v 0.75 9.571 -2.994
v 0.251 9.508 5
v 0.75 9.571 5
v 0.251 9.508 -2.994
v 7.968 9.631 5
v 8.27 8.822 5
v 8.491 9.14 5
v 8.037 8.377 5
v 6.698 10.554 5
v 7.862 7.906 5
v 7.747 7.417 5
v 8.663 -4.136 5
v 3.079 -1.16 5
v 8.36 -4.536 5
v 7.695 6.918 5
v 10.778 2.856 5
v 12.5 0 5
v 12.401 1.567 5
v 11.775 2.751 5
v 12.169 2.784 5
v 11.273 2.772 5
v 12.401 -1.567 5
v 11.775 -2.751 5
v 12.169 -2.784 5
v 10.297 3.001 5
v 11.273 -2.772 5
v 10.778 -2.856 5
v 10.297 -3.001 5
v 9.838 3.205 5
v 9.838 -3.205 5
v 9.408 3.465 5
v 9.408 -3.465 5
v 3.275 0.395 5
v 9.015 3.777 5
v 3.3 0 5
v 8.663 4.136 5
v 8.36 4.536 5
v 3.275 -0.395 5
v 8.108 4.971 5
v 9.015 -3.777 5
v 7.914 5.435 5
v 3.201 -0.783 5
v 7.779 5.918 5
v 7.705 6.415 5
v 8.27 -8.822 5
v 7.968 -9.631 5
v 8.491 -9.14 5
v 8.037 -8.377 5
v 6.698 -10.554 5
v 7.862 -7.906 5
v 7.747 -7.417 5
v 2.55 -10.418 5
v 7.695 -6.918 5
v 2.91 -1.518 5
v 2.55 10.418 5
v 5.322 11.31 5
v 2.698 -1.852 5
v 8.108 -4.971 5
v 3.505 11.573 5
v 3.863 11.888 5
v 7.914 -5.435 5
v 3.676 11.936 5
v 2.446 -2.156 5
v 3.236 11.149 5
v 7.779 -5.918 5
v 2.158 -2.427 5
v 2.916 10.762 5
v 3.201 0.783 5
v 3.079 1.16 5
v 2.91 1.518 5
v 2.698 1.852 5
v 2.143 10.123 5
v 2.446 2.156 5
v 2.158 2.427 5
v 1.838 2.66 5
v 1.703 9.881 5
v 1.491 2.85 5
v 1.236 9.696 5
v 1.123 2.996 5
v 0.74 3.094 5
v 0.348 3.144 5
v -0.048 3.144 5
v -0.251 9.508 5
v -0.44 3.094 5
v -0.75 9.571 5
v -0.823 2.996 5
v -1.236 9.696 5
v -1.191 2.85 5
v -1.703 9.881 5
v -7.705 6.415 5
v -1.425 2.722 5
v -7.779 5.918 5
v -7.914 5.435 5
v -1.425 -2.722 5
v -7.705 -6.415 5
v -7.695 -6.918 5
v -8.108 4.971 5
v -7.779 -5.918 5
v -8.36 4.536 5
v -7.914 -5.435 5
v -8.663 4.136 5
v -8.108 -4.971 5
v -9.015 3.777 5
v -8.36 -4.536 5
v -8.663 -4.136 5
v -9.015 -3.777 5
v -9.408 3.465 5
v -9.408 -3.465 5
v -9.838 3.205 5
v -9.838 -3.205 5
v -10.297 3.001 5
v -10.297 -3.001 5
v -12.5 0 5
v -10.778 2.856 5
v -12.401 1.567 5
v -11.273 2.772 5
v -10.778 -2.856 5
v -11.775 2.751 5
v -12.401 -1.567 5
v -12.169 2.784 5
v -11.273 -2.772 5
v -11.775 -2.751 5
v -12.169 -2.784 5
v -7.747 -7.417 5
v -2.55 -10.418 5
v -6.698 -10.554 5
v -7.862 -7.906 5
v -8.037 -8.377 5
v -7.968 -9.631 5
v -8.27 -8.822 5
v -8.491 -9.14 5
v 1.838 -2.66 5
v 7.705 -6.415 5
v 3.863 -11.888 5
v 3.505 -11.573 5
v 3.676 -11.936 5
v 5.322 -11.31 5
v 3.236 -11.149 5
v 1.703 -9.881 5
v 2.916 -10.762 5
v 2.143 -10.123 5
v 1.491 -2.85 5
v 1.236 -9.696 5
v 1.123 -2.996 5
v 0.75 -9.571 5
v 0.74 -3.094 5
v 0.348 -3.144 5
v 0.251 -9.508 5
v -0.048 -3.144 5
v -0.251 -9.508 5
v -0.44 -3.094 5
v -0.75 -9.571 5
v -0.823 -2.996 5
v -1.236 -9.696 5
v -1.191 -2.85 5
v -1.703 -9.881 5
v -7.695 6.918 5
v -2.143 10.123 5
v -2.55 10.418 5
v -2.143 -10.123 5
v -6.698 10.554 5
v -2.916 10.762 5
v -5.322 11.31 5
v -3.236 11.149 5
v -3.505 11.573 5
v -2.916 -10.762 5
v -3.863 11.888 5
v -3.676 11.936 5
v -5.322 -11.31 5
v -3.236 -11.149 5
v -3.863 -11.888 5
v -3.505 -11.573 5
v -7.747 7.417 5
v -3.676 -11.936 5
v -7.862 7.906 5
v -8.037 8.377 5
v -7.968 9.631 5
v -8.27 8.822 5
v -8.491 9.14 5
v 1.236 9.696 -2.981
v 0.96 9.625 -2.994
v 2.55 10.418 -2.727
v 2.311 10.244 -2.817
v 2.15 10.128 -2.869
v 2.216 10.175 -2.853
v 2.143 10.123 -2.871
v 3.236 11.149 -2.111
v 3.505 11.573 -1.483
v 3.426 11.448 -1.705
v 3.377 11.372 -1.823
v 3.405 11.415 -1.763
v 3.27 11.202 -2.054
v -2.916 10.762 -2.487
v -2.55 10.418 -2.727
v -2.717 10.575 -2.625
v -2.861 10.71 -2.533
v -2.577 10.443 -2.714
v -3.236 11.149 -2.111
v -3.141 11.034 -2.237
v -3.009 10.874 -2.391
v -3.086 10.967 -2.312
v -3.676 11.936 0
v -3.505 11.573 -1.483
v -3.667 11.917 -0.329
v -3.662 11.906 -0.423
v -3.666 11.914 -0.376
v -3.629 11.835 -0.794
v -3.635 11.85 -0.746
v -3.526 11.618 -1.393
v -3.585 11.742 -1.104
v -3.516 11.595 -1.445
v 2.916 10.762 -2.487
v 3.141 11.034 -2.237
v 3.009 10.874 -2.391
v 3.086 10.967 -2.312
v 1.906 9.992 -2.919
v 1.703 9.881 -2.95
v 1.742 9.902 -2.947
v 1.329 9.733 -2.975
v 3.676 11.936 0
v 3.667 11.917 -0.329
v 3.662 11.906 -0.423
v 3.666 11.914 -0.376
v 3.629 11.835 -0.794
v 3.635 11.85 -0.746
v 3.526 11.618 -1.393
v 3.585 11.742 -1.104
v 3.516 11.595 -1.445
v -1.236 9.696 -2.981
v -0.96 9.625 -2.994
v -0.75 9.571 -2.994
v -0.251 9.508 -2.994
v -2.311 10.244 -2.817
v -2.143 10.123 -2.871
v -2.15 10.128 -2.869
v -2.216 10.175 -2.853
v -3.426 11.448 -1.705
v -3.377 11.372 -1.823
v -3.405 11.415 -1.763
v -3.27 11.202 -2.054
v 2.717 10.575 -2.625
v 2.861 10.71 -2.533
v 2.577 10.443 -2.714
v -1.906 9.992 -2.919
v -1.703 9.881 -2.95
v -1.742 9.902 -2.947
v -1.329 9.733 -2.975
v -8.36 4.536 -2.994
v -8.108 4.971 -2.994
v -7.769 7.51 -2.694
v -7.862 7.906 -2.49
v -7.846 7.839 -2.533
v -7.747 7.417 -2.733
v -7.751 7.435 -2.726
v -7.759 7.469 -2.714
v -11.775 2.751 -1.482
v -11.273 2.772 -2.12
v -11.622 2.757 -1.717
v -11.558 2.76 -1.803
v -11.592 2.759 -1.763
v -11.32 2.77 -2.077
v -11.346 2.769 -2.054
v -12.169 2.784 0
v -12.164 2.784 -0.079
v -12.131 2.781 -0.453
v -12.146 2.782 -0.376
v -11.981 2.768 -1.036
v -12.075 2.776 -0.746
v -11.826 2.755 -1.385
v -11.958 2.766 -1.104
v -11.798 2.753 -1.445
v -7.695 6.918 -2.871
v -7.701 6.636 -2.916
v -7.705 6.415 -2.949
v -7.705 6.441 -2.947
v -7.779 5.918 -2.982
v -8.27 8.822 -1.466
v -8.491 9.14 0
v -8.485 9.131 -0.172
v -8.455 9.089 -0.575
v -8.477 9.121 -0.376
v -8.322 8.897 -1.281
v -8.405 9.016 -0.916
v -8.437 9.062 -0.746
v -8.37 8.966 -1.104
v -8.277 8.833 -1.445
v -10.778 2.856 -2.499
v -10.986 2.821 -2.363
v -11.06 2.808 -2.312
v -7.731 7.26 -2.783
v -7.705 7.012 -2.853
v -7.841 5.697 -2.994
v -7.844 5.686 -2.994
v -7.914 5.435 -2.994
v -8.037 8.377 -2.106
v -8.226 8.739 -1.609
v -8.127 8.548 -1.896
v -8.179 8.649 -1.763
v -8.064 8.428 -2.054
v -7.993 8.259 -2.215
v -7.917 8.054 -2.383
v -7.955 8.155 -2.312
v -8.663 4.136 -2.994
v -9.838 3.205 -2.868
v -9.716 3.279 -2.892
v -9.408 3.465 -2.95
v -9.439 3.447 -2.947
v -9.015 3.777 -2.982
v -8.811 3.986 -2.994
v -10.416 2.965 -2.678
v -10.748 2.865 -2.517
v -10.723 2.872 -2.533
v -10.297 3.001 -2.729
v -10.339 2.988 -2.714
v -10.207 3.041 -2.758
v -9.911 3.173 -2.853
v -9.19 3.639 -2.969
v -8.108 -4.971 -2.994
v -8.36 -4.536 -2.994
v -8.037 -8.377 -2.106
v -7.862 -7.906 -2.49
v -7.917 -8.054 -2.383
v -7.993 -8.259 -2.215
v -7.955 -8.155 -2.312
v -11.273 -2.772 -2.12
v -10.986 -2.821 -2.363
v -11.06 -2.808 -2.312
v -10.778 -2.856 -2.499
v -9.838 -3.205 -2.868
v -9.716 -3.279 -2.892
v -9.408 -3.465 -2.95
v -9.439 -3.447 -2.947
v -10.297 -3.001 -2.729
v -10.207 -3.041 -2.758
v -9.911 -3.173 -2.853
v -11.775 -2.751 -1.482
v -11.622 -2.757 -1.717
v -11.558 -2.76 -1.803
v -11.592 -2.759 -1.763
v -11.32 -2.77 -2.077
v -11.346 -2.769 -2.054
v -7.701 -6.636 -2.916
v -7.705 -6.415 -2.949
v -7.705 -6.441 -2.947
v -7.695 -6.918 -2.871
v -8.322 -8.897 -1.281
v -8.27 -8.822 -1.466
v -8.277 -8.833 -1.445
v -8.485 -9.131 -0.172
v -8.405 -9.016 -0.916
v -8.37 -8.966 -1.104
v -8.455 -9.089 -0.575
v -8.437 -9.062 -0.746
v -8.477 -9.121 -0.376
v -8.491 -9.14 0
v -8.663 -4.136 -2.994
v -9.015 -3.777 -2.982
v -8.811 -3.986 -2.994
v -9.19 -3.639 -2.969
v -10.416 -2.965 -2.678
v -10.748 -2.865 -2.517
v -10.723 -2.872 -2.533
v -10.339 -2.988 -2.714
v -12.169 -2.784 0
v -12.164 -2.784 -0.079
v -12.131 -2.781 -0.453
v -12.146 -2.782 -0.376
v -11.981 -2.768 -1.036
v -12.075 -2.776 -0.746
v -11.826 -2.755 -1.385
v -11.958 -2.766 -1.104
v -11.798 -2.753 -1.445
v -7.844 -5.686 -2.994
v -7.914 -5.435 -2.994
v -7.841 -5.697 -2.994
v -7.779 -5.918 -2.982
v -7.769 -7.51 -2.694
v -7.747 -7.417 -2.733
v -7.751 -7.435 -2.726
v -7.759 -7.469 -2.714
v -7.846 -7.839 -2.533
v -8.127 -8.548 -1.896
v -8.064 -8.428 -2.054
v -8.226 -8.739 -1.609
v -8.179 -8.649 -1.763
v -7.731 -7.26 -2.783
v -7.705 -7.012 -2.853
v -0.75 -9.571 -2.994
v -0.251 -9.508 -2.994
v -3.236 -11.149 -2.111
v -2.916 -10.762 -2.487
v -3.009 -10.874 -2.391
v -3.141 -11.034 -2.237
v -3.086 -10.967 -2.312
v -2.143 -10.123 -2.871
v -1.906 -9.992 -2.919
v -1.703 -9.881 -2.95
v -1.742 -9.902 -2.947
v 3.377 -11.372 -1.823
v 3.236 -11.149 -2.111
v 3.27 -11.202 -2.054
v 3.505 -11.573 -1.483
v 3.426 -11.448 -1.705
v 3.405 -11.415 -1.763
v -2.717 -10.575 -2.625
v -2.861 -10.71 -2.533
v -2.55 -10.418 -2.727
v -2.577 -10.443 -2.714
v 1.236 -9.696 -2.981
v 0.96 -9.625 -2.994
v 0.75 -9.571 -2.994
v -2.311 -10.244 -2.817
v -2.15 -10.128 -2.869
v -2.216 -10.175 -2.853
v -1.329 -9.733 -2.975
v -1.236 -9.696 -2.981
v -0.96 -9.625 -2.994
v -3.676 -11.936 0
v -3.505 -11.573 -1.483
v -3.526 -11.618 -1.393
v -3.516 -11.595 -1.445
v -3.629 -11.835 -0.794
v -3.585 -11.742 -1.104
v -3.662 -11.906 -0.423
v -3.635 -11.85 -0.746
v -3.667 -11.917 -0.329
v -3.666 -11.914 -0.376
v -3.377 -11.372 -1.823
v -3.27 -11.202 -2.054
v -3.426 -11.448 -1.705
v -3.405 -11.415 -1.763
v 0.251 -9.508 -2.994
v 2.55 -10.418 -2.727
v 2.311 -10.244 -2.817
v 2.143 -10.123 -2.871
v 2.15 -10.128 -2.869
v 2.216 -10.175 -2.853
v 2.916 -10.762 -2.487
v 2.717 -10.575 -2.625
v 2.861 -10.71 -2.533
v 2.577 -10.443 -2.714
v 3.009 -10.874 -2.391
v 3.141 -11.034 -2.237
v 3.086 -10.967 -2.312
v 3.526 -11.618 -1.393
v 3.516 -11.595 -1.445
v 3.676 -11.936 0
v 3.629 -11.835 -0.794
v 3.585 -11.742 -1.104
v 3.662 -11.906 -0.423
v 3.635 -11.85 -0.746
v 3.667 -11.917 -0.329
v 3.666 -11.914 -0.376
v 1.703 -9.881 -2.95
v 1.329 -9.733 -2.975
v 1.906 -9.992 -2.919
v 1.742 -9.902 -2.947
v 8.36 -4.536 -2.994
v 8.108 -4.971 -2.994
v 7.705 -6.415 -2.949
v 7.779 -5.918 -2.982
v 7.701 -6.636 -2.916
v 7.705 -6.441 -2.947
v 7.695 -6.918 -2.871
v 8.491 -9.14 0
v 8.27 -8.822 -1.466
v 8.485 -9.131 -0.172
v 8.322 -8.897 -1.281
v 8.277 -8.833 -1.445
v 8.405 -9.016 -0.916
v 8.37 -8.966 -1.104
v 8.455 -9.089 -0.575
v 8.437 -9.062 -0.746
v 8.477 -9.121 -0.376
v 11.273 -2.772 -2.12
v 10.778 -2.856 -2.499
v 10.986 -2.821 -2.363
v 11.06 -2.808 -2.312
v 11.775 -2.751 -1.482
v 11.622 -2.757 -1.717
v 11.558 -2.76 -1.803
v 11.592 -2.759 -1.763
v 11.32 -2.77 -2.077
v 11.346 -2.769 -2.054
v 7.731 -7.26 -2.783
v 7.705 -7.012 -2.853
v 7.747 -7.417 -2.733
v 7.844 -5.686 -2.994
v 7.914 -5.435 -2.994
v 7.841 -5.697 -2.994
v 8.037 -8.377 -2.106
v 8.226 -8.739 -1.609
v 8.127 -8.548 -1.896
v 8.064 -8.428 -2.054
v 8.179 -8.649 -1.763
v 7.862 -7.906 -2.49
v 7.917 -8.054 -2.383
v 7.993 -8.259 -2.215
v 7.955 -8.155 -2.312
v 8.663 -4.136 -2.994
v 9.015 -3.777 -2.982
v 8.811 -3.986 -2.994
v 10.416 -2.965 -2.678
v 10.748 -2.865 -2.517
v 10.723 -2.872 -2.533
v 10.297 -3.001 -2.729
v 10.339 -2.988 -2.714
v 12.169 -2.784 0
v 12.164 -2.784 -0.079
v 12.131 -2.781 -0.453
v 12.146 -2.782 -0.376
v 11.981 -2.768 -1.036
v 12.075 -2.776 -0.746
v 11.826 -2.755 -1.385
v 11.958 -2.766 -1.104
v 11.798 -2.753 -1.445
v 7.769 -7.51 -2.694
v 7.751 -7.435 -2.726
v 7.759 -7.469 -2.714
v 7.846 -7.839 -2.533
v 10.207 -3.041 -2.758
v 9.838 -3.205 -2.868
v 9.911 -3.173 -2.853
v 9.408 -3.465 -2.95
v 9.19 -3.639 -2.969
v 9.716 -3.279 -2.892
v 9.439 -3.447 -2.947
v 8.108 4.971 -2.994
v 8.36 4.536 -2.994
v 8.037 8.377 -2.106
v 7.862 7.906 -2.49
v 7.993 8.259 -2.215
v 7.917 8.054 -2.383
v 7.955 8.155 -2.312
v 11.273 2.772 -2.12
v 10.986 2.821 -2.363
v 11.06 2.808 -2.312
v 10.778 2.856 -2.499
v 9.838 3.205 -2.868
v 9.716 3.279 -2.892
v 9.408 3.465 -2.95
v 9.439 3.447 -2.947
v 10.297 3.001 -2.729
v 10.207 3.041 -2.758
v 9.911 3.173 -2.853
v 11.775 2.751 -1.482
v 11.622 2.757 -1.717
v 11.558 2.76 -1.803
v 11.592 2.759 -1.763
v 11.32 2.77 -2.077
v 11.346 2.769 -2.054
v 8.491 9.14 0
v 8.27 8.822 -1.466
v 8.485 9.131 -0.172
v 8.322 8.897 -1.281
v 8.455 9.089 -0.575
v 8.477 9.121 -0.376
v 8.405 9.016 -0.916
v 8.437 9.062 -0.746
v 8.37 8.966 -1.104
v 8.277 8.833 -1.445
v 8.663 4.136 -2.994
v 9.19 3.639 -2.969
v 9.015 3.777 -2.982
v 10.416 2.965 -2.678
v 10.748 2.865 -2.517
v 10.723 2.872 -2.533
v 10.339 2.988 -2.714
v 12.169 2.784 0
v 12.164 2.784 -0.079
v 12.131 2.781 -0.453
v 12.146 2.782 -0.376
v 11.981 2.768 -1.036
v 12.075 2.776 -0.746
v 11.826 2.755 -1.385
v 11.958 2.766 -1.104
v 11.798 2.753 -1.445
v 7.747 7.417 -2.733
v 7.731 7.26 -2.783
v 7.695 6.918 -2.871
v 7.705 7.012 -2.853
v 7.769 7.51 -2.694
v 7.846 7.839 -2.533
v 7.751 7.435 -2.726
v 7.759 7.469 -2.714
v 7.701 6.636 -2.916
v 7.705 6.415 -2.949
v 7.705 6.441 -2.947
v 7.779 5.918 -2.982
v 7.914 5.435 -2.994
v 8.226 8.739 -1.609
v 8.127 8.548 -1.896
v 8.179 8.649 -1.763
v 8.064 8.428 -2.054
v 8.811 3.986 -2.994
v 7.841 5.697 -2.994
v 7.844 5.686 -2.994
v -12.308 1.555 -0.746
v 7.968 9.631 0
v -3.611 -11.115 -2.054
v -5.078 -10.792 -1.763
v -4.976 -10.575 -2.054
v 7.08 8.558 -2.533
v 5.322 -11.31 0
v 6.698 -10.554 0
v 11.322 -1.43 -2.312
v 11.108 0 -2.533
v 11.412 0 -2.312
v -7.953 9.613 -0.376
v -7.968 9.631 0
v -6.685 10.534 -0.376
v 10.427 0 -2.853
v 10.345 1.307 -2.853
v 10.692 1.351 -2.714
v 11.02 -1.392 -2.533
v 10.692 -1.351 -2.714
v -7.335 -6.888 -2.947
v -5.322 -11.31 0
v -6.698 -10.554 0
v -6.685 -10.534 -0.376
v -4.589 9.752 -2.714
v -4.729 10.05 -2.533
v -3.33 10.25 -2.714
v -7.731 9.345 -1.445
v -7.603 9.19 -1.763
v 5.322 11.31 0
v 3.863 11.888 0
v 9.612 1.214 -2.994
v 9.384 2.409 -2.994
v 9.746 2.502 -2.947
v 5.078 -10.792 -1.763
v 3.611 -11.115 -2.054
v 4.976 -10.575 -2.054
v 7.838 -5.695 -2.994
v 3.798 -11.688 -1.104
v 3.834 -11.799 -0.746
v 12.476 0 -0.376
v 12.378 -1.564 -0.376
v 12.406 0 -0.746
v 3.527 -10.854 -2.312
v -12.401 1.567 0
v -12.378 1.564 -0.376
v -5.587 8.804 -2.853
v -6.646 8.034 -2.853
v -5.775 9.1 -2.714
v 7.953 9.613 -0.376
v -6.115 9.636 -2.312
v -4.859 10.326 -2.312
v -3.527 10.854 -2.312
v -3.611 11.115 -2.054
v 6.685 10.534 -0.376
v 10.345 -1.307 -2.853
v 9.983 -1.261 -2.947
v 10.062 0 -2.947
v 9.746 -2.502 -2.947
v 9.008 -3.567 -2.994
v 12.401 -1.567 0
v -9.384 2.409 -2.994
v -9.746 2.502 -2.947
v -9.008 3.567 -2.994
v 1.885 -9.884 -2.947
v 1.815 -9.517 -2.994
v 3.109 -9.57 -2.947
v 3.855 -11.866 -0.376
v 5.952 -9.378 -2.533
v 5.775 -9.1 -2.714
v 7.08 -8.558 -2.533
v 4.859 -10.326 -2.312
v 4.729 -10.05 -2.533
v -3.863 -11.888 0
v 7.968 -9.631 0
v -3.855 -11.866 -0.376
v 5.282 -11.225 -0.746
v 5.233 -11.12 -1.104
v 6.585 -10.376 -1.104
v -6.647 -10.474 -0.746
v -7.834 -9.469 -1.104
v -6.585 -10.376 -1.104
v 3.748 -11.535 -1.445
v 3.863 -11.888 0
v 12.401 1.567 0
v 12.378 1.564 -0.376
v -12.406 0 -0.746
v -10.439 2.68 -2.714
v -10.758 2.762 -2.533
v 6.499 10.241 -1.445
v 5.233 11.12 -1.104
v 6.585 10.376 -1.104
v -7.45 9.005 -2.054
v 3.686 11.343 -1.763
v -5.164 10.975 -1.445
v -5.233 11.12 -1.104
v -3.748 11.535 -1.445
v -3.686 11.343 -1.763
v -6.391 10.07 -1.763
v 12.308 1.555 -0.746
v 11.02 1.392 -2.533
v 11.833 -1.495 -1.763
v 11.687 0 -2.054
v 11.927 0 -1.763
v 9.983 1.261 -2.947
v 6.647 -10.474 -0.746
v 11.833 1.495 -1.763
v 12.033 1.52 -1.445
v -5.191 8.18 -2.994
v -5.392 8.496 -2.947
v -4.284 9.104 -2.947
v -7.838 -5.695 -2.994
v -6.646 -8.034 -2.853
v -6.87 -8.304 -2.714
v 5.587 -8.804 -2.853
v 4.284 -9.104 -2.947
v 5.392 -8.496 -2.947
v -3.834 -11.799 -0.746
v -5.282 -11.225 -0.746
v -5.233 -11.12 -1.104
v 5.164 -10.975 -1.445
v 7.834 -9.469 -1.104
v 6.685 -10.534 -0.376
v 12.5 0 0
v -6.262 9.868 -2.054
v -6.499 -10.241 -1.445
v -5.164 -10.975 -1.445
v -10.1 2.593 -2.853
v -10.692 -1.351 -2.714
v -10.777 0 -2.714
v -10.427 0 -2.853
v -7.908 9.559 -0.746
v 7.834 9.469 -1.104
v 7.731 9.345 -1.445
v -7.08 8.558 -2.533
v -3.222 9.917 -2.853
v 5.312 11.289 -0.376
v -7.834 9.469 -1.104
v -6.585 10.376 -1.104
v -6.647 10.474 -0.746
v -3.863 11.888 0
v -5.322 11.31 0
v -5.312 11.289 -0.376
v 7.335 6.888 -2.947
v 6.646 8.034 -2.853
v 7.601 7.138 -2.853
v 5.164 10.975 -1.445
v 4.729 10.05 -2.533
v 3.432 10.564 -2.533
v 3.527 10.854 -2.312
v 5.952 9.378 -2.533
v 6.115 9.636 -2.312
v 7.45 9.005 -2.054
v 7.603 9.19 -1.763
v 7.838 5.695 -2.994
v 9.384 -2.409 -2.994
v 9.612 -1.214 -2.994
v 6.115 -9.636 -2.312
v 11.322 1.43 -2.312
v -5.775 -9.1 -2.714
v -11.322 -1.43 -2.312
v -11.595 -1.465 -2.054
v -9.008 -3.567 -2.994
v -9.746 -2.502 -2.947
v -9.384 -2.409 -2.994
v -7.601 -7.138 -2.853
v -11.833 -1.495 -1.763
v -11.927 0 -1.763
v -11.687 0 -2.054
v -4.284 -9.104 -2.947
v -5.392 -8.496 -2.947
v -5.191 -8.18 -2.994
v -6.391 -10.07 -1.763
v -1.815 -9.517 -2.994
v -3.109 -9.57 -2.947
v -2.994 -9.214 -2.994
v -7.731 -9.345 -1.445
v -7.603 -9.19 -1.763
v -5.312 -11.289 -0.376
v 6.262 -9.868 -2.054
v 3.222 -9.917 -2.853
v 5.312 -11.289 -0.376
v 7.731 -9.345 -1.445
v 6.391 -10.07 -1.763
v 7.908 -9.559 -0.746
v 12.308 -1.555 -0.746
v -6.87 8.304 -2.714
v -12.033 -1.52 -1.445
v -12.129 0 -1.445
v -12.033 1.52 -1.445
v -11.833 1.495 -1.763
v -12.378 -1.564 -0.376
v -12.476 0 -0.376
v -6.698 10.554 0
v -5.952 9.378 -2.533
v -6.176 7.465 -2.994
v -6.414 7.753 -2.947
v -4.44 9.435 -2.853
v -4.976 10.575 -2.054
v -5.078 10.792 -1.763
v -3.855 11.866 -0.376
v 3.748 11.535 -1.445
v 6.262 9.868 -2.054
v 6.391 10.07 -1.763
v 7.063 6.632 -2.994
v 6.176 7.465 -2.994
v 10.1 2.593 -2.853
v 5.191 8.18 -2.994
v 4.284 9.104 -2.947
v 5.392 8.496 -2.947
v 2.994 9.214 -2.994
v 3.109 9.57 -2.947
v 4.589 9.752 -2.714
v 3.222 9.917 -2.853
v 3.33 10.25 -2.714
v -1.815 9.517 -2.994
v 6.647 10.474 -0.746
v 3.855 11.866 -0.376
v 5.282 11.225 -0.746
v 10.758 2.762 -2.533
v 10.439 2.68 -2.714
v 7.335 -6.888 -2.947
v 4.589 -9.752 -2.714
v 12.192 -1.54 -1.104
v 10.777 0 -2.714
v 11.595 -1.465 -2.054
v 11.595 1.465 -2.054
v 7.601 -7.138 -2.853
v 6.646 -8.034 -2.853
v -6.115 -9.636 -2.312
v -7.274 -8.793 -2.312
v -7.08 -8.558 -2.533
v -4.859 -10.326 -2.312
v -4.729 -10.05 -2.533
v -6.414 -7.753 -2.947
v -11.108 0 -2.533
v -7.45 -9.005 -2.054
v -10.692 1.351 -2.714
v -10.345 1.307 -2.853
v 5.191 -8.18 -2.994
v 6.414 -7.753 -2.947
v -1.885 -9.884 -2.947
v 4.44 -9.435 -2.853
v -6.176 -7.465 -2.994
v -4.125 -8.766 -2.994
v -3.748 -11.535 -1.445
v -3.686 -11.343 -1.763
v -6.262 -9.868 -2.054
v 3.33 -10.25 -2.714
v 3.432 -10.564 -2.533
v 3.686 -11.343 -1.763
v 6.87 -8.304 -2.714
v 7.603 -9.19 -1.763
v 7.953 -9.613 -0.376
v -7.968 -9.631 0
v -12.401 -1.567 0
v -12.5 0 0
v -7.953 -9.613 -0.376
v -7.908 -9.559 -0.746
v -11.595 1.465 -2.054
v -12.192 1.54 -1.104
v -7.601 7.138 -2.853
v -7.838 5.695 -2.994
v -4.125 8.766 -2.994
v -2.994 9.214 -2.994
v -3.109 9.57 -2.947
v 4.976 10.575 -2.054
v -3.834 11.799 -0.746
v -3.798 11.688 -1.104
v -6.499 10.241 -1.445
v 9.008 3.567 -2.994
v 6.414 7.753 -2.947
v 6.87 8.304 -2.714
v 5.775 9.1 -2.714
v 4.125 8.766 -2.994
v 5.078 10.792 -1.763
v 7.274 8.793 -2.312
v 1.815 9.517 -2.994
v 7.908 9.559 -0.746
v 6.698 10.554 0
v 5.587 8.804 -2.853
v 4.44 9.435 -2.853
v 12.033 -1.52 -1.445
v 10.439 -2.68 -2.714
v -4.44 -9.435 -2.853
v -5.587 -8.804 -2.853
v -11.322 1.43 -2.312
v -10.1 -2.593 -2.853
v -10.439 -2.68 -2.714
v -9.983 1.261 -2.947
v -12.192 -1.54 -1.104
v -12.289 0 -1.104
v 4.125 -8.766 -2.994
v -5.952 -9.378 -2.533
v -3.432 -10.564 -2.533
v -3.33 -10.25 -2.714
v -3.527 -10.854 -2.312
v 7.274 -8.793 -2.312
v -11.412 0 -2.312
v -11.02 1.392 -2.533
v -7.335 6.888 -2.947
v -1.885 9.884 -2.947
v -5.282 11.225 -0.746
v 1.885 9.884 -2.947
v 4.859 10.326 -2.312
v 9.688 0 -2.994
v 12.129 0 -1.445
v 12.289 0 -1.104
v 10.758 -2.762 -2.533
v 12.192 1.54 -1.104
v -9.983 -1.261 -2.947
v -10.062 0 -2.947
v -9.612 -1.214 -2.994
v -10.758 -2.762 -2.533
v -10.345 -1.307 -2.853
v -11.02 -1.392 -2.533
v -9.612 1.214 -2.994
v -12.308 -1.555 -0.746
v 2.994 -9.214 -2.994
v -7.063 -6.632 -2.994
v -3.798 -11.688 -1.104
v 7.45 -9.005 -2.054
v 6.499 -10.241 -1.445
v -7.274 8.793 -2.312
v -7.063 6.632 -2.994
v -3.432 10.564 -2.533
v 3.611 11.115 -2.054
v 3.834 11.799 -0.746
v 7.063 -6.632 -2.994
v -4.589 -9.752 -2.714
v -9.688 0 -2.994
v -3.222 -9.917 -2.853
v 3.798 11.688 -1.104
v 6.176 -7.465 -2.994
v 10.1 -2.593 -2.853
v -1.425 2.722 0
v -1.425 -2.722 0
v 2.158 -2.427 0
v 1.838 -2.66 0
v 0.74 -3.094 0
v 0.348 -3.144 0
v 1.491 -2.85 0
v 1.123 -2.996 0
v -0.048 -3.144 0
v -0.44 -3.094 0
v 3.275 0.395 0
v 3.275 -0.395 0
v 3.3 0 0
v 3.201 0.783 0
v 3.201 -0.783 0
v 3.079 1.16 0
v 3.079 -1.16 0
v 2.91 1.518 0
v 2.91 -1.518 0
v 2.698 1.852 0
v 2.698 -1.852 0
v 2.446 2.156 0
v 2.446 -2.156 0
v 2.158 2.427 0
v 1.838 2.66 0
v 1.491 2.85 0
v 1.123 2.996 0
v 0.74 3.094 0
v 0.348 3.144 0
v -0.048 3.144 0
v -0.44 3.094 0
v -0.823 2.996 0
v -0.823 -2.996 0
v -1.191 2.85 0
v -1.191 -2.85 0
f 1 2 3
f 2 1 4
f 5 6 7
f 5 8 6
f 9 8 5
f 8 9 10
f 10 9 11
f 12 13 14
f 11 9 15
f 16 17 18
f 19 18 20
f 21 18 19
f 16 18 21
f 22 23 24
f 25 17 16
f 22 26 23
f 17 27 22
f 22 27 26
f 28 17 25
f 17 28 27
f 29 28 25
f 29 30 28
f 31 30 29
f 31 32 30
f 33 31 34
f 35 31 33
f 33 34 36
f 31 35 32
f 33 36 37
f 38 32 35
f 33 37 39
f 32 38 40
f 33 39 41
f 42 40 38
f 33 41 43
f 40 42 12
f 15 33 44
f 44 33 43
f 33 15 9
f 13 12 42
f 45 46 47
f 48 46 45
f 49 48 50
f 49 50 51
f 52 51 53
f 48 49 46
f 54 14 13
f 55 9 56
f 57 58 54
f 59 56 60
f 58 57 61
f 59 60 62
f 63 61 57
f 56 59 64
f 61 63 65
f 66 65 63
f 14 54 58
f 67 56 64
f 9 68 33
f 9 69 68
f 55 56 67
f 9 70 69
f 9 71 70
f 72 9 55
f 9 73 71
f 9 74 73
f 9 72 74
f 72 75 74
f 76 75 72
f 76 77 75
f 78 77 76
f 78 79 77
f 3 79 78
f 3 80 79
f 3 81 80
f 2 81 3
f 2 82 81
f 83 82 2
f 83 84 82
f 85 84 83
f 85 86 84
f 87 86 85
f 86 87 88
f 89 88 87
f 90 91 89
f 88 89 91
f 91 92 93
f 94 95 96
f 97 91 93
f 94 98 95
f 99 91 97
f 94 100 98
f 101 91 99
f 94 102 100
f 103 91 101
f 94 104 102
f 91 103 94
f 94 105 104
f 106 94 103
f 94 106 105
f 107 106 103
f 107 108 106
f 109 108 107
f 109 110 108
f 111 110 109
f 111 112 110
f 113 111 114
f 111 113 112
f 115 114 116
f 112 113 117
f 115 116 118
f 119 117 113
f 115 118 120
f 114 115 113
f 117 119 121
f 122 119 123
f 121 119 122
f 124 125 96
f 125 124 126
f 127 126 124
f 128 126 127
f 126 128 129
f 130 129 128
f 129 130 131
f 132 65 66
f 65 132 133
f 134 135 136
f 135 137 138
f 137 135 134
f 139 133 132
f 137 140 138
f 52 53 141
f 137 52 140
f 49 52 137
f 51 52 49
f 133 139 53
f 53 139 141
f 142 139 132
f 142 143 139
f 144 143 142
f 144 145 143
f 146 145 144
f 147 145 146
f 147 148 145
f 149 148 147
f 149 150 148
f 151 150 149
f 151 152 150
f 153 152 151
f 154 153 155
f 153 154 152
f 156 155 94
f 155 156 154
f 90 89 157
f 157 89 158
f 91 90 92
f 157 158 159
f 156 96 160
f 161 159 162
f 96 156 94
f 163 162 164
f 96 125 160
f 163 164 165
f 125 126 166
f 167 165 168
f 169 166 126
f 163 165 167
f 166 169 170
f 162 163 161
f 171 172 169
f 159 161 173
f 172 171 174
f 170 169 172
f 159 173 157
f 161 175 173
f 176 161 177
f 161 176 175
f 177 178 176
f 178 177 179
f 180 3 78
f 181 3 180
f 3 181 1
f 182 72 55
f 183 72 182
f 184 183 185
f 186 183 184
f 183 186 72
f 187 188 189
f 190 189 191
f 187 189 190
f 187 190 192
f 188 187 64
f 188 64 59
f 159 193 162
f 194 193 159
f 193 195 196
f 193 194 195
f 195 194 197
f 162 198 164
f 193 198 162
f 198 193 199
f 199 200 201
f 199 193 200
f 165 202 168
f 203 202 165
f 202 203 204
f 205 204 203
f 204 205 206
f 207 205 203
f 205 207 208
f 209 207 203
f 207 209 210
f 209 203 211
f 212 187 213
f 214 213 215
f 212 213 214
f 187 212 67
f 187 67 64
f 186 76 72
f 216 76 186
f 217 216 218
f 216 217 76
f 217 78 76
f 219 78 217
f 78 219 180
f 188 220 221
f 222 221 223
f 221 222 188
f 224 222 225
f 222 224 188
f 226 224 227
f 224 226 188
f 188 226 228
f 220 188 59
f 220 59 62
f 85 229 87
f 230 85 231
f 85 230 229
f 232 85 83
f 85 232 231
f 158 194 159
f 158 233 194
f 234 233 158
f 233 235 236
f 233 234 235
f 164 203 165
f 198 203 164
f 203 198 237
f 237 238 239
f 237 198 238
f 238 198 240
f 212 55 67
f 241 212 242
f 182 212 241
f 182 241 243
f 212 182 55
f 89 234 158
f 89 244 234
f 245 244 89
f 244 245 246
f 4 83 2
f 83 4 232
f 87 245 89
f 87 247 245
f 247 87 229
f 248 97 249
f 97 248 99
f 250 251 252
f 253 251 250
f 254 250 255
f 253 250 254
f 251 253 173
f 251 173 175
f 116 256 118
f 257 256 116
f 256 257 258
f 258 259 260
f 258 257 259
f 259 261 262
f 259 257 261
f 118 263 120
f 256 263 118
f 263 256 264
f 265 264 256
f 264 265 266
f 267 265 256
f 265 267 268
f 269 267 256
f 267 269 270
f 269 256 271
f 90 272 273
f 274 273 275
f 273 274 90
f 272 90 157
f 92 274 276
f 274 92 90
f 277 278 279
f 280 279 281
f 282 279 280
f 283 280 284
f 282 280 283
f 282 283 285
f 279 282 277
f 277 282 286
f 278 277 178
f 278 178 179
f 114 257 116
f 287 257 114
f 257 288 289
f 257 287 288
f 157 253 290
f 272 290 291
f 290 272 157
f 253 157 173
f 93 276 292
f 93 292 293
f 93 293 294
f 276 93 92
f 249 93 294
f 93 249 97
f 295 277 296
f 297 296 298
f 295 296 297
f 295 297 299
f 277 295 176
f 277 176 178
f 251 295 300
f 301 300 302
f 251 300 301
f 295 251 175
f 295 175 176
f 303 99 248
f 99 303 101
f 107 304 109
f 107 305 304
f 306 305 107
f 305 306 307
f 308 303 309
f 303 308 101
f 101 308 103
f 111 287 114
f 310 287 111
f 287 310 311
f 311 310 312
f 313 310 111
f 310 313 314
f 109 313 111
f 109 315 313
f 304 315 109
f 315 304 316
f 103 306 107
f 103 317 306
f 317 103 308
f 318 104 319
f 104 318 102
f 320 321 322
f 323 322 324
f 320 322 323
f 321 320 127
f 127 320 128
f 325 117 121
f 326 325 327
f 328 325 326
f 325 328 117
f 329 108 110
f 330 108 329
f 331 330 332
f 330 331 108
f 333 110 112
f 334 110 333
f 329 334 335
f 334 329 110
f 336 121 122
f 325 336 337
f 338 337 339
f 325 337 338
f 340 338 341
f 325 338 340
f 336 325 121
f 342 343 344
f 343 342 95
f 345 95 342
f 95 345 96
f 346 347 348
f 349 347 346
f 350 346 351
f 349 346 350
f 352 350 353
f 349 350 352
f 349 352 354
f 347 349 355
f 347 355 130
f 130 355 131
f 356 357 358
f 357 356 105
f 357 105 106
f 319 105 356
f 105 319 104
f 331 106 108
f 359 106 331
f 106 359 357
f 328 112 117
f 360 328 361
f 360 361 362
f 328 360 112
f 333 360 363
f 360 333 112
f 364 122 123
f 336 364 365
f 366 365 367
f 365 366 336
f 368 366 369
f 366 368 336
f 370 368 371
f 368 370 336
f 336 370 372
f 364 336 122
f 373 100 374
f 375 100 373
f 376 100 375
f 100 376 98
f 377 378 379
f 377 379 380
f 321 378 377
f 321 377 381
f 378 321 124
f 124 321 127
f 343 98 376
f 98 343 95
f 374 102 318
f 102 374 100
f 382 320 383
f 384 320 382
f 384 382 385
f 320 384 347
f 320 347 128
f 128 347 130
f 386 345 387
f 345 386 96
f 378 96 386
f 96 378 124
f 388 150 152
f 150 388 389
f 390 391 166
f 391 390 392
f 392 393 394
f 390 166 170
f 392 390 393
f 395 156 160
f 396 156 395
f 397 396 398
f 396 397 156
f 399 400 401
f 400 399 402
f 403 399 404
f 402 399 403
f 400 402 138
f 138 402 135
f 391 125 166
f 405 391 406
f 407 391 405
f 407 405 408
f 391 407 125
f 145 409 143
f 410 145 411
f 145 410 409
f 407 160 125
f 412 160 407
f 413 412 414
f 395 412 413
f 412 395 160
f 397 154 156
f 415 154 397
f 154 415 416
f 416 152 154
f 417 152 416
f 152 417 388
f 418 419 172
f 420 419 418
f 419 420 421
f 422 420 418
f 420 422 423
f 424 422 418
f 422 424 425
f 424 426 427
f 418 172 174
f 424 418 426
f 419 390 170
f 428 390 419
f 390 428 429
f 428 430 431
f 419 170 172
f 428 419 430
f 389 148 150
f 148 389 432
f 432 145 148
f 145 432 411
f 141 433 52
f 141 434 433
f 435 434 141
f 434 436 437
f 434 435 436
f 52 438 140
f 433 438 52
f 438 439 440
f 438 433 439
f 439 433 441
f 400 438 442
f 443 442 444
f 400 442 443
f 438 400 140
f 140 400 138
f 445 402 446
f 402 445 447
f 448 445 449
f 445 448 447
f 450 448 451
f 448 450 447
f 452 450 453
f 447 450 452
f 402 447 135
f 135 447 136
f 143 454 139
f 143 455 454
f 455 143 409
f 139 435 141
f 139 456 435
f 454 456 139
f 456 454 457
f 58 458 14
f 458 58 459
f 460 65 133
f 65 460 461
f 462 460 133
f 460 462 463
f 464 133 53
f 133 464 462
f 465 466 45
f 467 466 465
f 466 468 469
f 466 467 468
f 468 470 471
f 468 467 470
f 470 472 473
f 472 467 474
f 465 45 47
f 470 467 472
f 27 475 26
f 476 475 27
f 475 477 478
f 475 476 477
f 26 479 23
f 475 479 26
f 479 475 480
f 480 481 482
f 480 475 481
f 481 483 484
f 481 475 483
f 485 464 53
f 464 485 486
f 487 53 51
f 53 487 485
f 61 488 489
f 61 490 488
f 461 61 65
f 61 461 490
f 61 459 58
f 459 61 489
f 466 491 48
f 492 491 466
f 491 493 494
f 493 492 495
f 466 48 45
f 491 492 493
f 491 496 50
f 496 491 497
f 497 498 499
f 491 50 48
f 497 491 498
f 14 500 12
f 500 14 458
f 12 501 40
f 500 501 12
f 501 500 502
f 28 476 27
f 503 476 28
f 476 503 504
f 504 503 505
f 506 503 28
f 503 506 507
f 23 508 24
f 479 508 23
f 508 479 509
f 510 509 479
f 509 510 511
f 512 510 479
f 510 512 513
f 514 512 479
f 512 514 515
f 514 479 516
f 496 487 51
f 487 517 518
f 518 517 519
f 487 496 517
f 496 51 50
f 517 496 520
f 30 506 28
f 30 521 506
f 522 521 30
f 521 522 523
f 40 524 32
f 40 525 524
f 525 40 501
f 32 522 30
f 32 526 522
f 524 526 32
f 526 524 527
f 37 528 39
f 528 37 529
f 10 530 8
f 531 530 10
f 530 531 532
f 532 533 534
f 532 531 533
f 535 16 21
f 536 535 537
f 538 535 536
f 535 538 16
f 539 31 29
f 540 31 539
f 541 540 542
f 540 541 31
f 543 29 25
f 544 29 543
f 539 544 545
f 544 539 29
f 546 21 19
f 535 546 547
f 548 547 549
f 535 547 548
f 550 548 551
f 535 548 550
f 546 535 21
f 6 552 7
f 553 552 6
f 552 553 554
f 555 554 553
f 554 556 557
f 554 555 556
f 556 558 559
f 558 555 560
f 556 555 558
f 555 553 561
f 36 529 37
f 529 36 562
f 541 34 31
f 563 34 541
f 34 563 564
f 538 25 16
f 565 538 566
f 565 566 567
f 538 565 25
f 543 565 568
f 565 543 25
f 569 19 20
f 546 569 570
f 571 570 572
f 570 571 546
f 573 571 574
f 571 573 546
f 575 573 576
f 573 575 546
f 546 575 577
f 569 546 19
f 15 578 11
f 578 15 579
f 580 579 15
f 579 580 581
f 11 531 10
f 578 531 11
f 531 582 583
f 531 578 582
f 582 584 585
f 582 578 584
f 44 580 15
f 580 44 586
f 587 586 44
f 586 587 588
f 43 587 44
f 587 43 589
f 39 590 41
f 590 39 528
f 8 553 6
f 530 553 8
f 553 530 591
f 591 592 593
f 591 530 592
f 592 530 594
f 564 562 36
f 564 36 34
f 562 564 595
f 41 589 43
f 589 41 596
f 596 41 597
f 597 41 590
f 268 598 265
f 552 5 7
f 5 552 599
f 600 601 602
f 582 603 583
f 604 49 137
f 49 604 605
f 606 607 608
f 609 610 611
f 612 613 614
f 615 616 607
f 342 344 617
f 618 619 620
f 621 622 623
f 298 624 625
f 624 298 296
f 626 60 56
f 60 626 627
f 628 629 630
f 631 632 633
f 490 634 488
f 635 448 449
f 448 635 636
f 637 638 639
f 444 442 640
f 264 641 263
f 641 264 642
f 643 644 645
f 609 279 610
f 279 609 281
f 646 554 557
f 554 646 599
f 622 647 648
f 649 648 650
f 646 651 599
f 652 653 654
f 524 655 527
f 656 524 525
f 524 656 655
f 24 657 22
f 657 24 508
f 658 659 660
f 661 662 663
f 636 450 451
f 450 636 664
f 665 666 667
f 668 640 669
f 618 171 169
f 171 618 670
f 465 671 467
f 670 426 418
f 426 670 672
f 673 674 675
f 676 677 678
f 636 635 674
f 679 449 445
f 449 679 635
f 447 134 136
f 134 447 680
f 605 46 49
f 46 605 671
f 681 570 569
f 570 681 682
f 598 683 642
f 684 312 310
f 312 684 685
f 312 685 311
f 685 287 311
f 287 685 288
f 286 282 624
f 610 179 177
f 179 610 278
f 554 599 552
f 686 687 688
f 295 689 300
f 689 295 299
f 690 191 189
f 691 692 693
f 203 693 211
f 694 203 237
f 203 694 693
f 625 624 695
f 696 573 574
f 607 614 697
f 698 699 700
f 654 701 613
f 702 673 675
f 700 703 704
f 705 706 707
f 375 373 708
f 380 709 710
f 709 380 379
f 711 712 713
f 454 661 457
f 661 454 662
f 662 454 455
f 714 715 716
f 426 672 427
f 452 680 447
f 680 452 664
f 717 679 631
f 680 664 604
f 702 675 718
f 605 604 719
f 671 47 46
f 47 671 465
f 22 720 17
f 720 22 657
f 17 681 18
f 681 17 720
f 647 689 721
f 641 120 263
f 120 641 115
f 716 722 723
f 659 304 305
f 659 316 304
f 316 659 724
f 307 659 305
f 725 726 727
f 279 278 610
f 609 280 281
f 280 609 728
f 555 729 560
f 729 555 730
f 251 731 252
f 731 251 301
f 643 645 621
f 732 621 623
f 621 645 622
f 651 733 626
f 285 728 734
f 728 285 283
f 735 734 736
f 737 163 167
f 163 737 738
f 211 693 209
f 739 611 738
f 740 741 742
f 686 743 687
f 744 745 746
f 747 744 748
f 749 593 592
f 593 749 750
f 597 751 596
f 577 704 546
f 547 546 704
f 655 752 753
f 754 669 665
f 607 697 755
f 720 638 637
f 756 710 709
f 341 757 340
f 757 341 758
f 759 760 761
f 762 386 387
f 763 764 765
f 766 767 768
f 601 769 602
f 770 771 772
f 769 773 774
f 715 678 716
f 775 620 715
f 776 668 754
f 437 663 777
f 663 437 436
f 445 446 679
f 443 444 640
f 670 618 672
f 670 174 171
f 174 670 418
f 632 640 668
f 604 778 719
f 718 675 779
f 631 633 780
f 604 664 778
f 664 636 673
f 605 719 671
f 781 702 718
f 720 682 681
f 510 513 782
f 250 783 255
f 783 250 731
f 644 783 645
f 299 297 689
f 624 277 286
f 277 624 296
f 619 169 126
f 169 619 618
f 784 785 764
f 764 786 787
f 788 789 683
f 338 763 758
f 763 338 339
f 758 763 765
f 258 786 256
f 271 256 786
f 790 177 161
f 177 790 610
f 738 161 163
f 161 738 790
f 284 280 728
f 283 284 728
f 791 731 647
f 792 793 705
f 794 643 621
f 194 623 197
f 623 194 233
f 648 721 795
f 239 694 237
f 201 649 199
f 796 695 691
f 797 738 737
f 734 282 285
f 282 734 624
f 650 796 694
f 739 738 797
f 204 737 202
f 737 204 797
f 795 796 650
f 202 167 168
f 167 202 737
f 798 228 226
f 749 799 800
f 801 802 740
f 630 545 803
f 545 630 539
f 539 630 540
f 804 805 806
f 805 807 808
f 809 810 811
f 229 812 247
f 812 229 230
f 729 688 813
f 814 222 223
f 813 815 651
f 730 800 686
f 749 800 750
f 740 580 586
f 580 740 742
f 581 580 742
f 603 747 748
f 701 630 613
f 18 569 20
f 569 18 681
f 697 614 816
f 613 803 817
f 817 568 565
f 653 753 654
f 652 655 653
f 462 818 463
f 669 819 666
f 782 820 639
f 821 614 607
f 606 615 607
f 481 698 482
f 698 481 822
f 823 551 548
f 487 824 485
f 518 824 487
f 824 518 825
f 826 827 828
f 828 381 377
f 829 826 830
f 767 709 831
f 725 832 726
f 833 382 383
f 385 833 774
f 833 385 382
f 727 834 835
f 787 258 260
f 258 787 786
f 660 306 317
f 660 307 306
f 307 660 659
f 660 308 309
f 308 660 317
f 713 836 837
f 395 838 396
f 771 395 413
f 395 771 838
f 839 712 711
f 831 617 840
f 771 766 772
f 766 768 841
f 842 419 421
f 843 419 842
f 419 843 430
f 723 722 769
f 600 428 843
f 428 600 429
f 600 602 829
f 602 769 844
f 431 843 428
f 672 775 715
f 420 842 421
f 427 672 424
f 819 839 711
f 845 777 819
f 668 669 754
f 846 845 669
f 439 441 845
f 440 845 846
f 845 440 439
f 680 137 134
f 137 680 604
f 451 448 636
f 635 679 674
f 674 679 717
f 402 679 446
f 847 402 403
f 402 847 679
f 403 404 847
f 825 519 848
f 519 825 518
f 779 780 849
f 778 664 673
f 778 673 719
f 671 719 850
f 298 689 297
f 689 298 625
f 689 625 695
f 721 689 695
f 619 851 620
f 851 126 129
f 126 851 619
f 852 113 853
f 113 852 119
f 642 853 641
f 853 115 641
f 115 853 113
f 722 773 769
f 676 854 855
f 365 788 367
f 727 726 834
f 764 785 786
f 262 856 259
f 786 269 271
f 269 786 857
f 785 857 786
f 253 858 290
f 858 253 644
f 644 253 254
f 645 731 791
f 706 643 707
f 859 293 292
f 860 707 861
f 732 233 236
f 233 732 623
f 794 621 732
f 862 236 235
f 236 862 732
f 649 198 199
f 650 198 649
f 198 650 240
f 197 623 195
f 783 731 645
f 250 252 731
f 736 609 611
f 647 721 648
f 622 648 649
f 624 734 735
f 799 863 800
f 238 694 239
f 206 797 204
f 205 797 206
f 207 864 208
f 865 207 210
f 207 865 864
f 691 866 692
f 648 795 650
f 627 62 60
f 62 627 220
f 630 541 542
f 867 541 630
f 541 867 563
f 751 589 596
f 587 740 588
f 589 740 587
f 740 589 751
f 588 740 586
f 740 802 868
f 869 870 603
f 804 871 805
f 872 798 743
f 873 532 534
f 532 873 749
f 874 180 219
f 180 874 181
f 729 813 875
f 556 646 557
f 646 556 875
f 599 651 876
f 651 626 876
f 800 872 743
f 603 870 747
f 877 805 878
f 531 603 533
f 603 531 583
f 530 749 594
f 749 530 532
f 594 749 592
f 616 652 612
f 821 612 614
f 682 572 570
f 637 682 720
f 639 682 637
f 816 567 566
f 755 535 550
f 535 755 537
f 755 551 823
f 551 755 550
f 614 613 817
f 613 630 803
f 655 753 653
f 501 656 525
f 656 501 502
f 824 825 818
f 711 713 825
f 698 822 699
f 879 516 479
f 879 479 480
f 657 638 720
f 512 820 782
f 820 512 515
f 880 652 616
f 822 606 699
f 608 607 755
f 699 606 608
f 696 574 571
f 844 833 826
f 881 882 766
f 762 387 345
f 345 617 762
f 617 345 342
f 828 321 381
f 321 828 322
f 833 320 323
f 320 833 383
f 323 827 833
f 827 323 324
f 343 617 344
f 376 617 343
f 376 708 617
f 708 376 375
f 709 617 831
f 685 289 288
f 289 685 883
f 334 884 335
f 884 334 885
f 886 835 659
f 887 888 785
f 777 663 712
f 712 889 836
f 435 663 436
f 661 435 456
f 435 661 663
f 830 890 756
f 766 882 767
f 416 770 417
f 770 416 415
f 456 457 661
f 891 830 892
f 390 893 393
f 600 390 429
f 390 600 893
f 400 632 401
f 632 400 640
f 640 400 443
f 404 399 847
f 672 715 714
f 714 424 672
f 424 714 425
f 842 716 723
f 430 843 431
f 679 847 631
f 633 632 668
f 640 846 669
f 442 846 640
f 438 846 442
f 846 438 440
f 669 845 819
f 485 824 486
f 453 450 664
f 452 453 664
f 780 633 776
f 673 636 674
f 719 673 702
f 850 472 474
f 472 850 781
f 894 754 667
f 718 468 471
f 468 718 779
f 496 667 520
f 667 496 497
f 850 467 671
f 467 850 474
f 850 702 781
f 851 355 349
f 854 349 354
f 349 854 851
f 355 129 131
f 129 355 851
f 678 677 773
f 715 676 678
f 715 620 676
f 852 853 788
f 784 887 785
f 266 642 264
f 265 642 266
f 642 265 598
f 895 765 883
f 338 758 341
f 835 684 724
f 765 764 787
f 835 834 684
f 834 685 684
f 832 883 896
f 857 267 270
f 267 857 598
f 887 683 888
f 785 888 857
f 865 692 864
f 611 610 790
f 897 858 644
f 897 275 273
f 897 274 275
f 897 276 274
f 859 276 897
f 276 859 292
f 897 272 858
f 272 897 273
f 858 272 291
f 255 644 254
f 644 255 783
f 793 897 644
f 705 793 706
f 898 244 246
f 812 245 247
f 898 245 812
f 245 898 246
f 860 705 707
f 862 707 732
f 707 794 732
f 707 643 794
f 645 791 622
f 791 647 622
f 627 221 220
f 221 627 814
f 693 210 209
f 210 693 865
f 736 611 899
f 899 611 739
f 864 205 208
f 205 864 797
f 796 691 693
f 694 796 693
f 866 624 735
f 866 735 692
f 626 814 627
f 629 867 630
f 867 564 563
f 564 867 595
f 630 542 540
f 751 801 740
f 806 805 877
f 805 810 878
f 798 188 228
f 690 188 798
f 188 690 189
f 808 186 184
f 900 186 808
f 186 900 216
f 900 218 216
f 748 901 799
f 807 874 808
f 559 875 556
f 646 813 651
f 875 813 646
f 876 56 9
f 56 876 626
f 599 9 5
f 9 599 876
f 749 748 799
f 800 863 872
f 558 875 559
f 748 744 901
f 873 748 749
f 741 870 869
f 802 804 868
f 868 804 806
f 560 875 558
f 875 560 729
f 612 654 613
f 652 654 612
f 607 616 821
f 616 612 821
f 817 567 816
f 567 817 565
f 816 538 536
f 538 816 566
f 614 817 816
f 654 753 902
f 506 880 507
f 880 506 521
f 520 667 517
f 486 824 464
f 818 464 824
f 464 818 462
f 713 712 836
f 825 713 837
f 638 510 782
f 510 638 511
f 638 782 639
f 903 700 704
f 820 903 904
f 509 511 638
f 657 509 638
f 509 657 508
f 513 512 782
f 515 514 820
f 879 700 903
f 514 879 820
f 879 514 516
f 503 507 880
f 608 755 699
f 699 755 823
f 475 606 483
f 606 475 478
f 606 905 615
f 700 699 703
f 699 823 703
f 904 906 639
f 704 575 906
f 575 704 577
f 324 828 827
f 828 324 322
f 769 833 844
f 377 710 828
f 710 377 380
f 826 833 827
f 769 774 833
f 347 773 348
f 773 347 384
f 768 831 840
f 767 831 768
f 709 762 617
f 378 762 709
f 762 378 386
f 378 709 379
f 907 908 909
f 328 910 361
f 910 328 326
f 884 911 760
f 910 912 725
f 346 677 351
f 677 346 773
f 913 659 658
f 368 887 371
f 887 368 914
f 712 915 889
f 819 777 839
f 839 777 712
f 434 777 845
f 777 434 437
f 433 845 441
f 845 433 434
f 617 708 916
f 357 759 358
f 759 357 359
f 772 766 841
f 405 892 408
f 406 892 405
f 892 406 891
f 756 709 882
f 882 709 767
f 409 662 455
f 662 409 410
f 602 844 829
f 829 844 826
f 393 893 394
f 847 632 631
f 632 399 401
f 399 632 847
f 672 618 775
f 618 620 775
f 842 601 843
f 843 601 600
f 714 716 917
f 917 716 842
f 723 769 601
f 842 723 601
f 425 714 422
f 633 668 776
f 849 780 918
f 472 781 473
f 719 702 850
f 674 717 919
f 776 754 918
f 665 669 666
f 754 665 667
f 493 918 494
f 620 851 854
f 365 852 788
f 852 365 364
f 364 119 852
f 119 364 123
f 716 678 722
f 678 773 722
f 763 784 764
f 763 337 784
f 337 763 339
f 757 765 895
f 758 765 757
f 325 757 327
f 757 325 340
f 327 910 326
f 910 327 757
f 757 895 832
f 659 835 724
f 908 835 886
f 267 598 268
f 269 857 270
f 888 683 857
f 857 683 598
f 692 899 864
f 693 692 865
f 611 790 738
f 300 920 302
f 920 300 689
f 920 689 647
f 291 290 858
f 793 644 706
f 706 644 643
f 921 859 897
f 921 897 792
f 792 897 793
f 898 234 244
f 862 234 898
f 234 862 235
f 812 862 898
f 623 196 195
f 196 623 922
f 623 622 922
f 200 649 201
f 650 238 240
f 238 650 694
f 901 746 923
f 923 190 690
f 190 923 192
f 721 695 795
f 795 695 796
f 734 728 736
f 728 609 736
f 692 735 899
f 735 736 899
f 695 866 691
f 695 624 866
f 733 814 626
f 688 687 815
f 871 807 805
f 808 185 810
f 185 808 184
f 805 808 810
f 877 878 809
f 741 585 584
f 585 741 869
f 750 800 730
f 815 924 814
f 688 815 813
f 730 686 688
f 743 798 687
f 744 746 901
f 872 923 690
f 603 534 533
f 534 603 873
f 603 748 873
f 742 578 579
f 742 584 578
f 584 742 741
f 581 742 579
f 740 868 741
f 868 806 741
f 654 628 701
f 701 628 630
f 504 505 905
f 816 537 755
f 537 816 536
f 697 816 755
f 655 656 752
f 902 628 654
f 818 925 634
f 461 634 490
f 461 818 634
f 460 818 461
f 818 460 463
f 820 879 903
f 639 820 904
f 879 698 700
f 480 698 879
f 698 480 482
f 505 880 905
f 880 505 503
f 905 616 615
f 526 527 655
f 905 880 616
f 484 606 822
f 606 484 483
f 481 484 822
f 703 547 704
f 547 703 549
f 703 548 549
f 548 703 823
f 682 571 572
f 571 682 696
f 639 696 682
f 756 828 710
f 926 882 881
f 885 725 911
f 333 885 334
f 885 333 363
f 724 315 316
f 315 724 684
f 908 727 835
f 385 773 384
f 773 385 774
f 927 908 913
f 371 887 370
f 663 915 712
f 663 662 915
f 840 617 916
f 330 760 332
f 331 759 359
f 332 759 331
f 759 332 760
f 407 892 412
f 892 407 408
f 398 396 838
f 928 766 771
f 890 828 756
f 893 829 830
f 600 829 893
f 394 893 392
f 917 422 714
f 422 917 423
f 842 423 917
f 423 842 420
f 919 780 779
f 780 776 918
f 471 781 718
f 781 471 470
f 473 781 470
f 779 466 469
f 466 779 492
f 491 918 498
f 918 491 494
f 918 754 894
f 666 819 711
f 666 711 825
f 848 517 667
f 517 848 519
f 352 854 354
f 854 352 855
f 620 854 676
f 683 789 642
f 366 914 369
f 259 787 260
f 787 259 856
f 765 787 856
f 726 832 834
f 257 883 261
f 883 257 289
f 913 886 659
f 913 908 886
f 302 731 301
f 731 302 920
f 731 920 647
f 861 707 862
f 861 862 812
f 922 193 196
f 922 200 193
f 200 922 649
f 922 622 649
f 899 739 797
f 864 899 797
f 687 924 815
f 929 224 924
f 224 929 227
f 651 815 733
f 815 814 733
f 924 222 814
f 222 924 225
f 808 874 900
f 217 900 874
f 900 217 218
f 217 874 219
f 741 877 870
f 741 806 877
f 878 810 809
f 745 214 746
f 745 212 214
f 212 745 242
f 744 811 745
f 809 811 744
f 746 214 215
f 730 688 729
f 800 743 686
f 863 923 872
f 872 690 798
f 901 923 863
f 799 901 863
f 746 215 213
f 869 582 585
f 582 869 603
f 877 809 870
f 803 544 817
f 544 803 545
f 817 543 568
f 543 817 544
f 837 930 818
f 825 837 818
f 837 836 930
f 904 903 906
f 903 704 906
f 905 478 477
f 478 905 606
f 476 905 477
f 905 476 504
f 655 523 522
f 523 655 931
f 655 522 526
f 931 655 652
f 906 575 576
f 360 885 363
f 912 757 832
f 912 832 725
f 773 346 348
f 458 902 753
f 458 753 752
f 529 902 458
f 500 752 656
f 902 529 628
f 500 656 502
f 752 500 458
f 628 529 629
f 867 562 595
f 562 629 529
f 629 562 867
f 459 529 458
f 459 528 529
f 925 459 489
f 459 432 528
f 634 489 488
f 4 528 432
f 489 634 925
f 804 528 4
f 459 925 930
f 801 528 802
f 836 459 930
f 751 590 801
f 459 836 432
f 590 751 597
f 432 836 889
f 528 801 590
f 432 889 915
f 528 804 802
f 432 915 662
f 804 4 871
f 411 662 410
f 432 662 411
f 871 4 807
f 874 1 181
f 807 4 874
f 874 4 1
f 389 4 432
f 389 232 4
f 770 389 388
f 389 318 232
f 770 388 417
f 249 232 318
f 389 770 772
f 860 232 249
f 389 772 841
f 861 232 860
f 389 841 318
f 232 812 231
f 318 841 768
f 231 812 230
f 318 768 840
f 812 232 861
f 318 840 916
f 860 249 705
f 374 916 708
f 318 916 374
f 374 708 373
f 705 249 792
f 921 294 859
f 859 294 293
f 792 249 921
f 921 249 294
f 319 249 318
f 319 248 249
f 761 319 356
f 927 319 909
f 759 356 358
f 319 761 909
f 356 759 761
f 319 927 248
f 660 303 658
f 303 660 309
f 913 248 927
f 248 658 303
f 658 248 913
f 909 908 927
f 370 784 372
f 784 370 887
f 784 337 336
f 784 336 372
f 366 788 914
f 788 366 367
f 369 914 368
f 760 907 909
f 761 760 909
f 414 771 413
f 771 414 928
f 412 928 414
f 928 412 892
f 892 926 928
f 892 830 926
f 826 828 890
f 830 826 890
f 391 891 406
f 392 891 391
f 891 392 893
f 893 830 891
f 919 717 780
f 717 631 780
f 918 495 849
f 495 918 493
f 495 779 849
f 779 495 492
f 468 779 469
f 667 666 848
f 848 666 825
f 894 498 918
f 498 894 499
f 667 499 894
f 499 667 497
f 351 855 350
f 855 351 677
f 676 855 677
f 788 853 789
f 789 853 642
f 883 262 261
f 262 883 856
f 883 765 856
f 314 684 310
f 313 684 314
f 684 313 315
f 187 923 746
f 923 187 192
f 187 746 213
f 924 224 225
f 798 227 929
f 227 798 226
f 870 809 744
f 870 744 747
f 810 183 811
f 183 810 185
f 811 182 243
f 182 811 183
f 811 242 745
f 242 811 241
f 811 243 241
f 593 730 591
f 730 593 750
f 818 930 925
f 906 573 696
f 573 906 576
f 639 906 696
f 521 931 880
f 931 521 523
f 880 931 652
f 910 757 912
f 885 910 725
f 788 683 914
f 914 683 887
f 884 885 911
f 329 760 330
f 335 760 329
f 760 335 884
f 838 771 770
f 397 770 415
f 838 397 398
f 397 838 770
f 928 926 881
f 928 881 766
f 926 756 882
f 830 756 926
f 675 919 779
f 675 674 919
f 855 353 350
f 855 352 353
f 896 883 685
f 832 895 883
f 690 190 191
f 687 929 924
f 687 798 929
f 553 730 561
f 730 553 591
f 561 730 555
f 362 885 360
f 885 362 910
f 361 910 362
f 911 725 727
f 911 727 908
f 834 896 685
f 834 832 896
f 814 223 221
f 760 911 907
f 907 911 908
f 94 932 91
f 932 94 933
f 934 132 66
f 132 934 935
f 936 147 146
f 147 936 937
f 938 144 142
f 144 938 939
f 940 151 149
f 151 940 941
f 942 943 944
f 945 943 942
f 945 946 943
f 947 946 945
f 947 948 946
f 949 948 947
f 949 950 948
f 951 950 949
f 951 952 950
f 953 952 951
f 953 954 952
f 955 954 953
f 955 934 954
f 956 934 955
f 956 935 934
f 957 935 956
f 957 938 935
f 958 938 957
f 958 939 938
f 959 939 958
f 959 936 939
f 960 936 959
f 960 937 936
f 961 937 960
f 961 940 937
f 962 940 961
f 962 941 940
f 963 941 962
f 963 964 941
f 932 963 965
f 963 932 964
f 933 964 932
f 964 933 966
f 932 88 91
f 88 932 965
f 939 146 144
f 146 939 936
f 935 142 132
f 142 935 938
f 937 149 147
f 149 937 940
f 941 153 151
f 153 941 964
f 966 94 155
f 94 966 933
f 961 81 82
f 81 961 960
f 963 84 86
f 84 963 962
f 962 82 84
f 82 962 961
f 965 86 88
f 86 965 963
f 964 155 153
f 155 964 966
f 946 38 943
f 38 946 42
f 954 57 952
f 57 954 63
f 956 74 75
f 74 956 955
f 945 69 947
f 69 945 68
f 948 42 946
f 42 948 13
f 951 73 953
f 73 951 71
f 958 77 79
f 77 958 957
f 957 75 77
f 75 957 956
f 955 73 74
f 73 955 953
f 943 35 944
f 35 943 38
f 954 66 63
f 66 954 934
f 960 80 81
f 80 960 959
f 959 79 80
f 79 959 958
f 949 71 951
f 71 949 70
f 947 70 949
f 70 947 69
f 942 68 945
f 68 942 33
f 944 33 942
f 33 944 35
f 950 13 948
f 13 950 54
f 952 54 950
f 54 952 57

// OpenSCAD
$fn=50;

module cut() {
    translate([-3,0])scale(1.05)linear_extrude(height=6) {
        difference() {
            translate([3,0])circle(r=3);
            square([3,6],center=true);
        }
    }
}
difference() {
    positiv();
    sides();
    cut();
}
module positiv(r=3) {
    hull() {
        rotate_extrude()translate([12.5-r,0])circle(r=r);
        cylinder(r=12.5,h=5);
    }
}
module sides(number=6,radius=4) {
    translate([0,0,-3])for(i=[0:number])rotate([0,0,360/number*i])translate([0,12.5+1])cylinder(h=8,r=radius);
}
    
